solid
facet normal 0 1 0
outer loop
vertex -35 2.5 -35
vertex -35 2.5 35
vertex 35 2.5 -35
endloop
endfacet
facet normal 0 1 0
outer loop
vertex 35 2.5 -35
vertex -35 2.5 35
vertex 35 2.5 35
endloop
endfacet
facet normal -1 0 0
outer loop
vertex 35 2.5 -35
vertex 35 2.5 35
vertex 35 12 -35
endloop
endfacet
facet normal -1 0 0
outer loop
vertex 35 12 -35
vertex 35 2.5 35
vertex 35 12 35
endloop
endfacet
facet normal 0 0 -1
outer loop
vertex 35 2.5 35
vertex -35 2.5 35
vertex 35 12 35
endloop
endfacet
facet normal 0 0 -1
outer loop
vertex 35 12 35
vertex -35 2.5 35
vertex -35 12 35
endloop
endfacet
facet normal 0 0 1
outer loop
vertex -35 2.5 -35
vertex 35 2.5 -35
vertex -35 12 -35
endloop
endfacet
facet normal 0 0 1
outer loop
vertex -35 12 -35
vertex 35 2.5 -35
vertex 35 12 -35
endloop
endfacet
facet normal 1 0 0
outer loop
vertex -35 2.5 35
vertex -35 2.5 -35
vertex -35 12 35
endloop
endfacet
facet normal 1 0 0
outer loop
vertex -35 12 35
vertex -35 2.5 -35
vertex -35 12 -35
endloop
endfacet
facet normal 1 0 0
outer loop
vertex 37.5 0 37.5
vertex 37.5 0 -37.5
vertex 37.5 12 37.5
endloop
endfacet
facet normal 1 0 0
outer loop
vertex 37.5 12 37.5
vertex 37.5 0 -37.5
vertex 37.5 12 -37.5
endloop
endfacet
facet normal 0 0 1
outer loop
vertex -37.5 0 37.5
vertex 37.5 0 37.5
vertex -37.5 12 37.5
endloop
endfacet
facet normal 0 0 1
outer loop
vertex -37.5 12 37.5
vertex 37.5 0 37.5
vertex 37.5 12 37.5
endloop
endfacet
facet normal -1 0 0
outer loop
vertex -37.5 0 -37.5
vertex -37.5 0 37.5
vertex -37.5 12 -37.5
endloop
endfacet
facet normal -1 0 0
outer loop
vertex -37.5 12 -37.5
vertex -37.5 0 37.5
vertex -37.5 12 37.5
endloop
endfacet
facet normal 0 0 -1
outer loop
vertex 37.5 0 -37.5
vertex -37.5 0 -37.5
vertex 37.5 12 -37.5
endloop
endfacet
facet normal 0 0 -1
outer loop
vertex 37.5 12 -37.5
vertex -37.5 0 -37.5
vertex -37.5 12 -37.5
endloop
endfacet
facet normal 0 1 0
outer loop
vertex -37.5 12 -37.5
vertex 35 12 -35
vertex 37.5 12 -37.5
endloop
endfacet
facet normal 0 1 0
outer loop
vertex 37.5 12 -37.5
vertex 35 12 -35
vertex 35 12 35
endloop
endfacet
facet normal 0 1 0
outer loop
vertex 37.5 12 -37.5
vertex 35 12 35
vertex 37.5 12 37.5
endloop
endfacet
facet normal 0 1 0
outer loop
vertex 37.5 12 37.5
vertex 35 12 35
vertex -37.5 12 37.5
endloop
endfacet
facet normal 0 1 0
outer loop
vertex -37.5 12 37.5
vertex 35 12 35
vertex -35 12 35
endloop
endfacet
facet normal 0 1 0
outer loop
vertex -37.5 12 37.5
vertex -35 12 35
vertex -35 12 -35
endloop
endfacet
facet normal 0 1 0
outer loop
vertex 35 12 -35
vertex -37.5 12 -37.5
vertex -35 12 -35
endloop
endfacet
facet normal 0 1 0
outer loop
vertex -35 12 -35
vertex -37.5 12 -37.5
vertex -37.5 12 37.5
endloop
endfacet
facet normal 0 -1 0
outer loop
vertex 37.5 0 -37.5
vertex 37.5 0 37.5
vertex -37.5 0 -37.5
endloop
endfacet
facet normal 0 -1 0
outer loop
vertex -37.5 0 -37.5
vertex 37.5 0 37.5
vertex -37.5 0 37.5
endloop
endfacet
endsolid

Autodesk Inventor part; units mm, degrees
ref_plane "YZ Plane" through (0, 0, 0) normal (1, 0, 0) x (0, 1, 0)
ref_plane "XZ Plane" through (0, 0, 0) normal (0, 1, 0) x (-1, 0, 0)
ref_plane "XY Plane" through (0, 0, 0) normal (0, 0, 1) x (1, 0, 0)
sketch "Sketch1" plane through (0, 0, 0) normal (0, 1, 0) x (-1, 0, 0)
  line L0 (-37.5, 37.5) -> (37.5, 37.5)
  line L1 (37.5, 37.5) -> (37.5, -37.5)
  line L2 (37.5, -37.5) -> (-37.5, -37.5)
  line L3 (-37.5, -37.5) -> (-37.5, 37.5)
  line L4 (-37.5, 37.5) -> (37.5, -37.5) construction
  line L5 (37.5, 37.5) -> (-37.5, -37.5) construction
  line L6 (-35, -35) -> (35, -35)
  line L7 (35, -35) -> (35, 35)
  line L8 (35, 35) -> (-35, 35)
  line L9 (-35, 35) -> (-35, -35)
  line L10 (-35, -35) -> (35, 35) construction
  line L11 (35, -35) -> (-35, 35) construction
  point P0 (0, 0)
  dimension "d0" = 75
  dimension "d1" = 75
  dimension "d2" = 70
  dimension "d3" = 70
extrude "Extrusion1" add sketch "Sketch1" along normal blind 12
extrude "Extrusion2" add sketch "Sketch1" along normal blind 2.5 contours L9 L8 L7 L6
properties part number "boxCap"
